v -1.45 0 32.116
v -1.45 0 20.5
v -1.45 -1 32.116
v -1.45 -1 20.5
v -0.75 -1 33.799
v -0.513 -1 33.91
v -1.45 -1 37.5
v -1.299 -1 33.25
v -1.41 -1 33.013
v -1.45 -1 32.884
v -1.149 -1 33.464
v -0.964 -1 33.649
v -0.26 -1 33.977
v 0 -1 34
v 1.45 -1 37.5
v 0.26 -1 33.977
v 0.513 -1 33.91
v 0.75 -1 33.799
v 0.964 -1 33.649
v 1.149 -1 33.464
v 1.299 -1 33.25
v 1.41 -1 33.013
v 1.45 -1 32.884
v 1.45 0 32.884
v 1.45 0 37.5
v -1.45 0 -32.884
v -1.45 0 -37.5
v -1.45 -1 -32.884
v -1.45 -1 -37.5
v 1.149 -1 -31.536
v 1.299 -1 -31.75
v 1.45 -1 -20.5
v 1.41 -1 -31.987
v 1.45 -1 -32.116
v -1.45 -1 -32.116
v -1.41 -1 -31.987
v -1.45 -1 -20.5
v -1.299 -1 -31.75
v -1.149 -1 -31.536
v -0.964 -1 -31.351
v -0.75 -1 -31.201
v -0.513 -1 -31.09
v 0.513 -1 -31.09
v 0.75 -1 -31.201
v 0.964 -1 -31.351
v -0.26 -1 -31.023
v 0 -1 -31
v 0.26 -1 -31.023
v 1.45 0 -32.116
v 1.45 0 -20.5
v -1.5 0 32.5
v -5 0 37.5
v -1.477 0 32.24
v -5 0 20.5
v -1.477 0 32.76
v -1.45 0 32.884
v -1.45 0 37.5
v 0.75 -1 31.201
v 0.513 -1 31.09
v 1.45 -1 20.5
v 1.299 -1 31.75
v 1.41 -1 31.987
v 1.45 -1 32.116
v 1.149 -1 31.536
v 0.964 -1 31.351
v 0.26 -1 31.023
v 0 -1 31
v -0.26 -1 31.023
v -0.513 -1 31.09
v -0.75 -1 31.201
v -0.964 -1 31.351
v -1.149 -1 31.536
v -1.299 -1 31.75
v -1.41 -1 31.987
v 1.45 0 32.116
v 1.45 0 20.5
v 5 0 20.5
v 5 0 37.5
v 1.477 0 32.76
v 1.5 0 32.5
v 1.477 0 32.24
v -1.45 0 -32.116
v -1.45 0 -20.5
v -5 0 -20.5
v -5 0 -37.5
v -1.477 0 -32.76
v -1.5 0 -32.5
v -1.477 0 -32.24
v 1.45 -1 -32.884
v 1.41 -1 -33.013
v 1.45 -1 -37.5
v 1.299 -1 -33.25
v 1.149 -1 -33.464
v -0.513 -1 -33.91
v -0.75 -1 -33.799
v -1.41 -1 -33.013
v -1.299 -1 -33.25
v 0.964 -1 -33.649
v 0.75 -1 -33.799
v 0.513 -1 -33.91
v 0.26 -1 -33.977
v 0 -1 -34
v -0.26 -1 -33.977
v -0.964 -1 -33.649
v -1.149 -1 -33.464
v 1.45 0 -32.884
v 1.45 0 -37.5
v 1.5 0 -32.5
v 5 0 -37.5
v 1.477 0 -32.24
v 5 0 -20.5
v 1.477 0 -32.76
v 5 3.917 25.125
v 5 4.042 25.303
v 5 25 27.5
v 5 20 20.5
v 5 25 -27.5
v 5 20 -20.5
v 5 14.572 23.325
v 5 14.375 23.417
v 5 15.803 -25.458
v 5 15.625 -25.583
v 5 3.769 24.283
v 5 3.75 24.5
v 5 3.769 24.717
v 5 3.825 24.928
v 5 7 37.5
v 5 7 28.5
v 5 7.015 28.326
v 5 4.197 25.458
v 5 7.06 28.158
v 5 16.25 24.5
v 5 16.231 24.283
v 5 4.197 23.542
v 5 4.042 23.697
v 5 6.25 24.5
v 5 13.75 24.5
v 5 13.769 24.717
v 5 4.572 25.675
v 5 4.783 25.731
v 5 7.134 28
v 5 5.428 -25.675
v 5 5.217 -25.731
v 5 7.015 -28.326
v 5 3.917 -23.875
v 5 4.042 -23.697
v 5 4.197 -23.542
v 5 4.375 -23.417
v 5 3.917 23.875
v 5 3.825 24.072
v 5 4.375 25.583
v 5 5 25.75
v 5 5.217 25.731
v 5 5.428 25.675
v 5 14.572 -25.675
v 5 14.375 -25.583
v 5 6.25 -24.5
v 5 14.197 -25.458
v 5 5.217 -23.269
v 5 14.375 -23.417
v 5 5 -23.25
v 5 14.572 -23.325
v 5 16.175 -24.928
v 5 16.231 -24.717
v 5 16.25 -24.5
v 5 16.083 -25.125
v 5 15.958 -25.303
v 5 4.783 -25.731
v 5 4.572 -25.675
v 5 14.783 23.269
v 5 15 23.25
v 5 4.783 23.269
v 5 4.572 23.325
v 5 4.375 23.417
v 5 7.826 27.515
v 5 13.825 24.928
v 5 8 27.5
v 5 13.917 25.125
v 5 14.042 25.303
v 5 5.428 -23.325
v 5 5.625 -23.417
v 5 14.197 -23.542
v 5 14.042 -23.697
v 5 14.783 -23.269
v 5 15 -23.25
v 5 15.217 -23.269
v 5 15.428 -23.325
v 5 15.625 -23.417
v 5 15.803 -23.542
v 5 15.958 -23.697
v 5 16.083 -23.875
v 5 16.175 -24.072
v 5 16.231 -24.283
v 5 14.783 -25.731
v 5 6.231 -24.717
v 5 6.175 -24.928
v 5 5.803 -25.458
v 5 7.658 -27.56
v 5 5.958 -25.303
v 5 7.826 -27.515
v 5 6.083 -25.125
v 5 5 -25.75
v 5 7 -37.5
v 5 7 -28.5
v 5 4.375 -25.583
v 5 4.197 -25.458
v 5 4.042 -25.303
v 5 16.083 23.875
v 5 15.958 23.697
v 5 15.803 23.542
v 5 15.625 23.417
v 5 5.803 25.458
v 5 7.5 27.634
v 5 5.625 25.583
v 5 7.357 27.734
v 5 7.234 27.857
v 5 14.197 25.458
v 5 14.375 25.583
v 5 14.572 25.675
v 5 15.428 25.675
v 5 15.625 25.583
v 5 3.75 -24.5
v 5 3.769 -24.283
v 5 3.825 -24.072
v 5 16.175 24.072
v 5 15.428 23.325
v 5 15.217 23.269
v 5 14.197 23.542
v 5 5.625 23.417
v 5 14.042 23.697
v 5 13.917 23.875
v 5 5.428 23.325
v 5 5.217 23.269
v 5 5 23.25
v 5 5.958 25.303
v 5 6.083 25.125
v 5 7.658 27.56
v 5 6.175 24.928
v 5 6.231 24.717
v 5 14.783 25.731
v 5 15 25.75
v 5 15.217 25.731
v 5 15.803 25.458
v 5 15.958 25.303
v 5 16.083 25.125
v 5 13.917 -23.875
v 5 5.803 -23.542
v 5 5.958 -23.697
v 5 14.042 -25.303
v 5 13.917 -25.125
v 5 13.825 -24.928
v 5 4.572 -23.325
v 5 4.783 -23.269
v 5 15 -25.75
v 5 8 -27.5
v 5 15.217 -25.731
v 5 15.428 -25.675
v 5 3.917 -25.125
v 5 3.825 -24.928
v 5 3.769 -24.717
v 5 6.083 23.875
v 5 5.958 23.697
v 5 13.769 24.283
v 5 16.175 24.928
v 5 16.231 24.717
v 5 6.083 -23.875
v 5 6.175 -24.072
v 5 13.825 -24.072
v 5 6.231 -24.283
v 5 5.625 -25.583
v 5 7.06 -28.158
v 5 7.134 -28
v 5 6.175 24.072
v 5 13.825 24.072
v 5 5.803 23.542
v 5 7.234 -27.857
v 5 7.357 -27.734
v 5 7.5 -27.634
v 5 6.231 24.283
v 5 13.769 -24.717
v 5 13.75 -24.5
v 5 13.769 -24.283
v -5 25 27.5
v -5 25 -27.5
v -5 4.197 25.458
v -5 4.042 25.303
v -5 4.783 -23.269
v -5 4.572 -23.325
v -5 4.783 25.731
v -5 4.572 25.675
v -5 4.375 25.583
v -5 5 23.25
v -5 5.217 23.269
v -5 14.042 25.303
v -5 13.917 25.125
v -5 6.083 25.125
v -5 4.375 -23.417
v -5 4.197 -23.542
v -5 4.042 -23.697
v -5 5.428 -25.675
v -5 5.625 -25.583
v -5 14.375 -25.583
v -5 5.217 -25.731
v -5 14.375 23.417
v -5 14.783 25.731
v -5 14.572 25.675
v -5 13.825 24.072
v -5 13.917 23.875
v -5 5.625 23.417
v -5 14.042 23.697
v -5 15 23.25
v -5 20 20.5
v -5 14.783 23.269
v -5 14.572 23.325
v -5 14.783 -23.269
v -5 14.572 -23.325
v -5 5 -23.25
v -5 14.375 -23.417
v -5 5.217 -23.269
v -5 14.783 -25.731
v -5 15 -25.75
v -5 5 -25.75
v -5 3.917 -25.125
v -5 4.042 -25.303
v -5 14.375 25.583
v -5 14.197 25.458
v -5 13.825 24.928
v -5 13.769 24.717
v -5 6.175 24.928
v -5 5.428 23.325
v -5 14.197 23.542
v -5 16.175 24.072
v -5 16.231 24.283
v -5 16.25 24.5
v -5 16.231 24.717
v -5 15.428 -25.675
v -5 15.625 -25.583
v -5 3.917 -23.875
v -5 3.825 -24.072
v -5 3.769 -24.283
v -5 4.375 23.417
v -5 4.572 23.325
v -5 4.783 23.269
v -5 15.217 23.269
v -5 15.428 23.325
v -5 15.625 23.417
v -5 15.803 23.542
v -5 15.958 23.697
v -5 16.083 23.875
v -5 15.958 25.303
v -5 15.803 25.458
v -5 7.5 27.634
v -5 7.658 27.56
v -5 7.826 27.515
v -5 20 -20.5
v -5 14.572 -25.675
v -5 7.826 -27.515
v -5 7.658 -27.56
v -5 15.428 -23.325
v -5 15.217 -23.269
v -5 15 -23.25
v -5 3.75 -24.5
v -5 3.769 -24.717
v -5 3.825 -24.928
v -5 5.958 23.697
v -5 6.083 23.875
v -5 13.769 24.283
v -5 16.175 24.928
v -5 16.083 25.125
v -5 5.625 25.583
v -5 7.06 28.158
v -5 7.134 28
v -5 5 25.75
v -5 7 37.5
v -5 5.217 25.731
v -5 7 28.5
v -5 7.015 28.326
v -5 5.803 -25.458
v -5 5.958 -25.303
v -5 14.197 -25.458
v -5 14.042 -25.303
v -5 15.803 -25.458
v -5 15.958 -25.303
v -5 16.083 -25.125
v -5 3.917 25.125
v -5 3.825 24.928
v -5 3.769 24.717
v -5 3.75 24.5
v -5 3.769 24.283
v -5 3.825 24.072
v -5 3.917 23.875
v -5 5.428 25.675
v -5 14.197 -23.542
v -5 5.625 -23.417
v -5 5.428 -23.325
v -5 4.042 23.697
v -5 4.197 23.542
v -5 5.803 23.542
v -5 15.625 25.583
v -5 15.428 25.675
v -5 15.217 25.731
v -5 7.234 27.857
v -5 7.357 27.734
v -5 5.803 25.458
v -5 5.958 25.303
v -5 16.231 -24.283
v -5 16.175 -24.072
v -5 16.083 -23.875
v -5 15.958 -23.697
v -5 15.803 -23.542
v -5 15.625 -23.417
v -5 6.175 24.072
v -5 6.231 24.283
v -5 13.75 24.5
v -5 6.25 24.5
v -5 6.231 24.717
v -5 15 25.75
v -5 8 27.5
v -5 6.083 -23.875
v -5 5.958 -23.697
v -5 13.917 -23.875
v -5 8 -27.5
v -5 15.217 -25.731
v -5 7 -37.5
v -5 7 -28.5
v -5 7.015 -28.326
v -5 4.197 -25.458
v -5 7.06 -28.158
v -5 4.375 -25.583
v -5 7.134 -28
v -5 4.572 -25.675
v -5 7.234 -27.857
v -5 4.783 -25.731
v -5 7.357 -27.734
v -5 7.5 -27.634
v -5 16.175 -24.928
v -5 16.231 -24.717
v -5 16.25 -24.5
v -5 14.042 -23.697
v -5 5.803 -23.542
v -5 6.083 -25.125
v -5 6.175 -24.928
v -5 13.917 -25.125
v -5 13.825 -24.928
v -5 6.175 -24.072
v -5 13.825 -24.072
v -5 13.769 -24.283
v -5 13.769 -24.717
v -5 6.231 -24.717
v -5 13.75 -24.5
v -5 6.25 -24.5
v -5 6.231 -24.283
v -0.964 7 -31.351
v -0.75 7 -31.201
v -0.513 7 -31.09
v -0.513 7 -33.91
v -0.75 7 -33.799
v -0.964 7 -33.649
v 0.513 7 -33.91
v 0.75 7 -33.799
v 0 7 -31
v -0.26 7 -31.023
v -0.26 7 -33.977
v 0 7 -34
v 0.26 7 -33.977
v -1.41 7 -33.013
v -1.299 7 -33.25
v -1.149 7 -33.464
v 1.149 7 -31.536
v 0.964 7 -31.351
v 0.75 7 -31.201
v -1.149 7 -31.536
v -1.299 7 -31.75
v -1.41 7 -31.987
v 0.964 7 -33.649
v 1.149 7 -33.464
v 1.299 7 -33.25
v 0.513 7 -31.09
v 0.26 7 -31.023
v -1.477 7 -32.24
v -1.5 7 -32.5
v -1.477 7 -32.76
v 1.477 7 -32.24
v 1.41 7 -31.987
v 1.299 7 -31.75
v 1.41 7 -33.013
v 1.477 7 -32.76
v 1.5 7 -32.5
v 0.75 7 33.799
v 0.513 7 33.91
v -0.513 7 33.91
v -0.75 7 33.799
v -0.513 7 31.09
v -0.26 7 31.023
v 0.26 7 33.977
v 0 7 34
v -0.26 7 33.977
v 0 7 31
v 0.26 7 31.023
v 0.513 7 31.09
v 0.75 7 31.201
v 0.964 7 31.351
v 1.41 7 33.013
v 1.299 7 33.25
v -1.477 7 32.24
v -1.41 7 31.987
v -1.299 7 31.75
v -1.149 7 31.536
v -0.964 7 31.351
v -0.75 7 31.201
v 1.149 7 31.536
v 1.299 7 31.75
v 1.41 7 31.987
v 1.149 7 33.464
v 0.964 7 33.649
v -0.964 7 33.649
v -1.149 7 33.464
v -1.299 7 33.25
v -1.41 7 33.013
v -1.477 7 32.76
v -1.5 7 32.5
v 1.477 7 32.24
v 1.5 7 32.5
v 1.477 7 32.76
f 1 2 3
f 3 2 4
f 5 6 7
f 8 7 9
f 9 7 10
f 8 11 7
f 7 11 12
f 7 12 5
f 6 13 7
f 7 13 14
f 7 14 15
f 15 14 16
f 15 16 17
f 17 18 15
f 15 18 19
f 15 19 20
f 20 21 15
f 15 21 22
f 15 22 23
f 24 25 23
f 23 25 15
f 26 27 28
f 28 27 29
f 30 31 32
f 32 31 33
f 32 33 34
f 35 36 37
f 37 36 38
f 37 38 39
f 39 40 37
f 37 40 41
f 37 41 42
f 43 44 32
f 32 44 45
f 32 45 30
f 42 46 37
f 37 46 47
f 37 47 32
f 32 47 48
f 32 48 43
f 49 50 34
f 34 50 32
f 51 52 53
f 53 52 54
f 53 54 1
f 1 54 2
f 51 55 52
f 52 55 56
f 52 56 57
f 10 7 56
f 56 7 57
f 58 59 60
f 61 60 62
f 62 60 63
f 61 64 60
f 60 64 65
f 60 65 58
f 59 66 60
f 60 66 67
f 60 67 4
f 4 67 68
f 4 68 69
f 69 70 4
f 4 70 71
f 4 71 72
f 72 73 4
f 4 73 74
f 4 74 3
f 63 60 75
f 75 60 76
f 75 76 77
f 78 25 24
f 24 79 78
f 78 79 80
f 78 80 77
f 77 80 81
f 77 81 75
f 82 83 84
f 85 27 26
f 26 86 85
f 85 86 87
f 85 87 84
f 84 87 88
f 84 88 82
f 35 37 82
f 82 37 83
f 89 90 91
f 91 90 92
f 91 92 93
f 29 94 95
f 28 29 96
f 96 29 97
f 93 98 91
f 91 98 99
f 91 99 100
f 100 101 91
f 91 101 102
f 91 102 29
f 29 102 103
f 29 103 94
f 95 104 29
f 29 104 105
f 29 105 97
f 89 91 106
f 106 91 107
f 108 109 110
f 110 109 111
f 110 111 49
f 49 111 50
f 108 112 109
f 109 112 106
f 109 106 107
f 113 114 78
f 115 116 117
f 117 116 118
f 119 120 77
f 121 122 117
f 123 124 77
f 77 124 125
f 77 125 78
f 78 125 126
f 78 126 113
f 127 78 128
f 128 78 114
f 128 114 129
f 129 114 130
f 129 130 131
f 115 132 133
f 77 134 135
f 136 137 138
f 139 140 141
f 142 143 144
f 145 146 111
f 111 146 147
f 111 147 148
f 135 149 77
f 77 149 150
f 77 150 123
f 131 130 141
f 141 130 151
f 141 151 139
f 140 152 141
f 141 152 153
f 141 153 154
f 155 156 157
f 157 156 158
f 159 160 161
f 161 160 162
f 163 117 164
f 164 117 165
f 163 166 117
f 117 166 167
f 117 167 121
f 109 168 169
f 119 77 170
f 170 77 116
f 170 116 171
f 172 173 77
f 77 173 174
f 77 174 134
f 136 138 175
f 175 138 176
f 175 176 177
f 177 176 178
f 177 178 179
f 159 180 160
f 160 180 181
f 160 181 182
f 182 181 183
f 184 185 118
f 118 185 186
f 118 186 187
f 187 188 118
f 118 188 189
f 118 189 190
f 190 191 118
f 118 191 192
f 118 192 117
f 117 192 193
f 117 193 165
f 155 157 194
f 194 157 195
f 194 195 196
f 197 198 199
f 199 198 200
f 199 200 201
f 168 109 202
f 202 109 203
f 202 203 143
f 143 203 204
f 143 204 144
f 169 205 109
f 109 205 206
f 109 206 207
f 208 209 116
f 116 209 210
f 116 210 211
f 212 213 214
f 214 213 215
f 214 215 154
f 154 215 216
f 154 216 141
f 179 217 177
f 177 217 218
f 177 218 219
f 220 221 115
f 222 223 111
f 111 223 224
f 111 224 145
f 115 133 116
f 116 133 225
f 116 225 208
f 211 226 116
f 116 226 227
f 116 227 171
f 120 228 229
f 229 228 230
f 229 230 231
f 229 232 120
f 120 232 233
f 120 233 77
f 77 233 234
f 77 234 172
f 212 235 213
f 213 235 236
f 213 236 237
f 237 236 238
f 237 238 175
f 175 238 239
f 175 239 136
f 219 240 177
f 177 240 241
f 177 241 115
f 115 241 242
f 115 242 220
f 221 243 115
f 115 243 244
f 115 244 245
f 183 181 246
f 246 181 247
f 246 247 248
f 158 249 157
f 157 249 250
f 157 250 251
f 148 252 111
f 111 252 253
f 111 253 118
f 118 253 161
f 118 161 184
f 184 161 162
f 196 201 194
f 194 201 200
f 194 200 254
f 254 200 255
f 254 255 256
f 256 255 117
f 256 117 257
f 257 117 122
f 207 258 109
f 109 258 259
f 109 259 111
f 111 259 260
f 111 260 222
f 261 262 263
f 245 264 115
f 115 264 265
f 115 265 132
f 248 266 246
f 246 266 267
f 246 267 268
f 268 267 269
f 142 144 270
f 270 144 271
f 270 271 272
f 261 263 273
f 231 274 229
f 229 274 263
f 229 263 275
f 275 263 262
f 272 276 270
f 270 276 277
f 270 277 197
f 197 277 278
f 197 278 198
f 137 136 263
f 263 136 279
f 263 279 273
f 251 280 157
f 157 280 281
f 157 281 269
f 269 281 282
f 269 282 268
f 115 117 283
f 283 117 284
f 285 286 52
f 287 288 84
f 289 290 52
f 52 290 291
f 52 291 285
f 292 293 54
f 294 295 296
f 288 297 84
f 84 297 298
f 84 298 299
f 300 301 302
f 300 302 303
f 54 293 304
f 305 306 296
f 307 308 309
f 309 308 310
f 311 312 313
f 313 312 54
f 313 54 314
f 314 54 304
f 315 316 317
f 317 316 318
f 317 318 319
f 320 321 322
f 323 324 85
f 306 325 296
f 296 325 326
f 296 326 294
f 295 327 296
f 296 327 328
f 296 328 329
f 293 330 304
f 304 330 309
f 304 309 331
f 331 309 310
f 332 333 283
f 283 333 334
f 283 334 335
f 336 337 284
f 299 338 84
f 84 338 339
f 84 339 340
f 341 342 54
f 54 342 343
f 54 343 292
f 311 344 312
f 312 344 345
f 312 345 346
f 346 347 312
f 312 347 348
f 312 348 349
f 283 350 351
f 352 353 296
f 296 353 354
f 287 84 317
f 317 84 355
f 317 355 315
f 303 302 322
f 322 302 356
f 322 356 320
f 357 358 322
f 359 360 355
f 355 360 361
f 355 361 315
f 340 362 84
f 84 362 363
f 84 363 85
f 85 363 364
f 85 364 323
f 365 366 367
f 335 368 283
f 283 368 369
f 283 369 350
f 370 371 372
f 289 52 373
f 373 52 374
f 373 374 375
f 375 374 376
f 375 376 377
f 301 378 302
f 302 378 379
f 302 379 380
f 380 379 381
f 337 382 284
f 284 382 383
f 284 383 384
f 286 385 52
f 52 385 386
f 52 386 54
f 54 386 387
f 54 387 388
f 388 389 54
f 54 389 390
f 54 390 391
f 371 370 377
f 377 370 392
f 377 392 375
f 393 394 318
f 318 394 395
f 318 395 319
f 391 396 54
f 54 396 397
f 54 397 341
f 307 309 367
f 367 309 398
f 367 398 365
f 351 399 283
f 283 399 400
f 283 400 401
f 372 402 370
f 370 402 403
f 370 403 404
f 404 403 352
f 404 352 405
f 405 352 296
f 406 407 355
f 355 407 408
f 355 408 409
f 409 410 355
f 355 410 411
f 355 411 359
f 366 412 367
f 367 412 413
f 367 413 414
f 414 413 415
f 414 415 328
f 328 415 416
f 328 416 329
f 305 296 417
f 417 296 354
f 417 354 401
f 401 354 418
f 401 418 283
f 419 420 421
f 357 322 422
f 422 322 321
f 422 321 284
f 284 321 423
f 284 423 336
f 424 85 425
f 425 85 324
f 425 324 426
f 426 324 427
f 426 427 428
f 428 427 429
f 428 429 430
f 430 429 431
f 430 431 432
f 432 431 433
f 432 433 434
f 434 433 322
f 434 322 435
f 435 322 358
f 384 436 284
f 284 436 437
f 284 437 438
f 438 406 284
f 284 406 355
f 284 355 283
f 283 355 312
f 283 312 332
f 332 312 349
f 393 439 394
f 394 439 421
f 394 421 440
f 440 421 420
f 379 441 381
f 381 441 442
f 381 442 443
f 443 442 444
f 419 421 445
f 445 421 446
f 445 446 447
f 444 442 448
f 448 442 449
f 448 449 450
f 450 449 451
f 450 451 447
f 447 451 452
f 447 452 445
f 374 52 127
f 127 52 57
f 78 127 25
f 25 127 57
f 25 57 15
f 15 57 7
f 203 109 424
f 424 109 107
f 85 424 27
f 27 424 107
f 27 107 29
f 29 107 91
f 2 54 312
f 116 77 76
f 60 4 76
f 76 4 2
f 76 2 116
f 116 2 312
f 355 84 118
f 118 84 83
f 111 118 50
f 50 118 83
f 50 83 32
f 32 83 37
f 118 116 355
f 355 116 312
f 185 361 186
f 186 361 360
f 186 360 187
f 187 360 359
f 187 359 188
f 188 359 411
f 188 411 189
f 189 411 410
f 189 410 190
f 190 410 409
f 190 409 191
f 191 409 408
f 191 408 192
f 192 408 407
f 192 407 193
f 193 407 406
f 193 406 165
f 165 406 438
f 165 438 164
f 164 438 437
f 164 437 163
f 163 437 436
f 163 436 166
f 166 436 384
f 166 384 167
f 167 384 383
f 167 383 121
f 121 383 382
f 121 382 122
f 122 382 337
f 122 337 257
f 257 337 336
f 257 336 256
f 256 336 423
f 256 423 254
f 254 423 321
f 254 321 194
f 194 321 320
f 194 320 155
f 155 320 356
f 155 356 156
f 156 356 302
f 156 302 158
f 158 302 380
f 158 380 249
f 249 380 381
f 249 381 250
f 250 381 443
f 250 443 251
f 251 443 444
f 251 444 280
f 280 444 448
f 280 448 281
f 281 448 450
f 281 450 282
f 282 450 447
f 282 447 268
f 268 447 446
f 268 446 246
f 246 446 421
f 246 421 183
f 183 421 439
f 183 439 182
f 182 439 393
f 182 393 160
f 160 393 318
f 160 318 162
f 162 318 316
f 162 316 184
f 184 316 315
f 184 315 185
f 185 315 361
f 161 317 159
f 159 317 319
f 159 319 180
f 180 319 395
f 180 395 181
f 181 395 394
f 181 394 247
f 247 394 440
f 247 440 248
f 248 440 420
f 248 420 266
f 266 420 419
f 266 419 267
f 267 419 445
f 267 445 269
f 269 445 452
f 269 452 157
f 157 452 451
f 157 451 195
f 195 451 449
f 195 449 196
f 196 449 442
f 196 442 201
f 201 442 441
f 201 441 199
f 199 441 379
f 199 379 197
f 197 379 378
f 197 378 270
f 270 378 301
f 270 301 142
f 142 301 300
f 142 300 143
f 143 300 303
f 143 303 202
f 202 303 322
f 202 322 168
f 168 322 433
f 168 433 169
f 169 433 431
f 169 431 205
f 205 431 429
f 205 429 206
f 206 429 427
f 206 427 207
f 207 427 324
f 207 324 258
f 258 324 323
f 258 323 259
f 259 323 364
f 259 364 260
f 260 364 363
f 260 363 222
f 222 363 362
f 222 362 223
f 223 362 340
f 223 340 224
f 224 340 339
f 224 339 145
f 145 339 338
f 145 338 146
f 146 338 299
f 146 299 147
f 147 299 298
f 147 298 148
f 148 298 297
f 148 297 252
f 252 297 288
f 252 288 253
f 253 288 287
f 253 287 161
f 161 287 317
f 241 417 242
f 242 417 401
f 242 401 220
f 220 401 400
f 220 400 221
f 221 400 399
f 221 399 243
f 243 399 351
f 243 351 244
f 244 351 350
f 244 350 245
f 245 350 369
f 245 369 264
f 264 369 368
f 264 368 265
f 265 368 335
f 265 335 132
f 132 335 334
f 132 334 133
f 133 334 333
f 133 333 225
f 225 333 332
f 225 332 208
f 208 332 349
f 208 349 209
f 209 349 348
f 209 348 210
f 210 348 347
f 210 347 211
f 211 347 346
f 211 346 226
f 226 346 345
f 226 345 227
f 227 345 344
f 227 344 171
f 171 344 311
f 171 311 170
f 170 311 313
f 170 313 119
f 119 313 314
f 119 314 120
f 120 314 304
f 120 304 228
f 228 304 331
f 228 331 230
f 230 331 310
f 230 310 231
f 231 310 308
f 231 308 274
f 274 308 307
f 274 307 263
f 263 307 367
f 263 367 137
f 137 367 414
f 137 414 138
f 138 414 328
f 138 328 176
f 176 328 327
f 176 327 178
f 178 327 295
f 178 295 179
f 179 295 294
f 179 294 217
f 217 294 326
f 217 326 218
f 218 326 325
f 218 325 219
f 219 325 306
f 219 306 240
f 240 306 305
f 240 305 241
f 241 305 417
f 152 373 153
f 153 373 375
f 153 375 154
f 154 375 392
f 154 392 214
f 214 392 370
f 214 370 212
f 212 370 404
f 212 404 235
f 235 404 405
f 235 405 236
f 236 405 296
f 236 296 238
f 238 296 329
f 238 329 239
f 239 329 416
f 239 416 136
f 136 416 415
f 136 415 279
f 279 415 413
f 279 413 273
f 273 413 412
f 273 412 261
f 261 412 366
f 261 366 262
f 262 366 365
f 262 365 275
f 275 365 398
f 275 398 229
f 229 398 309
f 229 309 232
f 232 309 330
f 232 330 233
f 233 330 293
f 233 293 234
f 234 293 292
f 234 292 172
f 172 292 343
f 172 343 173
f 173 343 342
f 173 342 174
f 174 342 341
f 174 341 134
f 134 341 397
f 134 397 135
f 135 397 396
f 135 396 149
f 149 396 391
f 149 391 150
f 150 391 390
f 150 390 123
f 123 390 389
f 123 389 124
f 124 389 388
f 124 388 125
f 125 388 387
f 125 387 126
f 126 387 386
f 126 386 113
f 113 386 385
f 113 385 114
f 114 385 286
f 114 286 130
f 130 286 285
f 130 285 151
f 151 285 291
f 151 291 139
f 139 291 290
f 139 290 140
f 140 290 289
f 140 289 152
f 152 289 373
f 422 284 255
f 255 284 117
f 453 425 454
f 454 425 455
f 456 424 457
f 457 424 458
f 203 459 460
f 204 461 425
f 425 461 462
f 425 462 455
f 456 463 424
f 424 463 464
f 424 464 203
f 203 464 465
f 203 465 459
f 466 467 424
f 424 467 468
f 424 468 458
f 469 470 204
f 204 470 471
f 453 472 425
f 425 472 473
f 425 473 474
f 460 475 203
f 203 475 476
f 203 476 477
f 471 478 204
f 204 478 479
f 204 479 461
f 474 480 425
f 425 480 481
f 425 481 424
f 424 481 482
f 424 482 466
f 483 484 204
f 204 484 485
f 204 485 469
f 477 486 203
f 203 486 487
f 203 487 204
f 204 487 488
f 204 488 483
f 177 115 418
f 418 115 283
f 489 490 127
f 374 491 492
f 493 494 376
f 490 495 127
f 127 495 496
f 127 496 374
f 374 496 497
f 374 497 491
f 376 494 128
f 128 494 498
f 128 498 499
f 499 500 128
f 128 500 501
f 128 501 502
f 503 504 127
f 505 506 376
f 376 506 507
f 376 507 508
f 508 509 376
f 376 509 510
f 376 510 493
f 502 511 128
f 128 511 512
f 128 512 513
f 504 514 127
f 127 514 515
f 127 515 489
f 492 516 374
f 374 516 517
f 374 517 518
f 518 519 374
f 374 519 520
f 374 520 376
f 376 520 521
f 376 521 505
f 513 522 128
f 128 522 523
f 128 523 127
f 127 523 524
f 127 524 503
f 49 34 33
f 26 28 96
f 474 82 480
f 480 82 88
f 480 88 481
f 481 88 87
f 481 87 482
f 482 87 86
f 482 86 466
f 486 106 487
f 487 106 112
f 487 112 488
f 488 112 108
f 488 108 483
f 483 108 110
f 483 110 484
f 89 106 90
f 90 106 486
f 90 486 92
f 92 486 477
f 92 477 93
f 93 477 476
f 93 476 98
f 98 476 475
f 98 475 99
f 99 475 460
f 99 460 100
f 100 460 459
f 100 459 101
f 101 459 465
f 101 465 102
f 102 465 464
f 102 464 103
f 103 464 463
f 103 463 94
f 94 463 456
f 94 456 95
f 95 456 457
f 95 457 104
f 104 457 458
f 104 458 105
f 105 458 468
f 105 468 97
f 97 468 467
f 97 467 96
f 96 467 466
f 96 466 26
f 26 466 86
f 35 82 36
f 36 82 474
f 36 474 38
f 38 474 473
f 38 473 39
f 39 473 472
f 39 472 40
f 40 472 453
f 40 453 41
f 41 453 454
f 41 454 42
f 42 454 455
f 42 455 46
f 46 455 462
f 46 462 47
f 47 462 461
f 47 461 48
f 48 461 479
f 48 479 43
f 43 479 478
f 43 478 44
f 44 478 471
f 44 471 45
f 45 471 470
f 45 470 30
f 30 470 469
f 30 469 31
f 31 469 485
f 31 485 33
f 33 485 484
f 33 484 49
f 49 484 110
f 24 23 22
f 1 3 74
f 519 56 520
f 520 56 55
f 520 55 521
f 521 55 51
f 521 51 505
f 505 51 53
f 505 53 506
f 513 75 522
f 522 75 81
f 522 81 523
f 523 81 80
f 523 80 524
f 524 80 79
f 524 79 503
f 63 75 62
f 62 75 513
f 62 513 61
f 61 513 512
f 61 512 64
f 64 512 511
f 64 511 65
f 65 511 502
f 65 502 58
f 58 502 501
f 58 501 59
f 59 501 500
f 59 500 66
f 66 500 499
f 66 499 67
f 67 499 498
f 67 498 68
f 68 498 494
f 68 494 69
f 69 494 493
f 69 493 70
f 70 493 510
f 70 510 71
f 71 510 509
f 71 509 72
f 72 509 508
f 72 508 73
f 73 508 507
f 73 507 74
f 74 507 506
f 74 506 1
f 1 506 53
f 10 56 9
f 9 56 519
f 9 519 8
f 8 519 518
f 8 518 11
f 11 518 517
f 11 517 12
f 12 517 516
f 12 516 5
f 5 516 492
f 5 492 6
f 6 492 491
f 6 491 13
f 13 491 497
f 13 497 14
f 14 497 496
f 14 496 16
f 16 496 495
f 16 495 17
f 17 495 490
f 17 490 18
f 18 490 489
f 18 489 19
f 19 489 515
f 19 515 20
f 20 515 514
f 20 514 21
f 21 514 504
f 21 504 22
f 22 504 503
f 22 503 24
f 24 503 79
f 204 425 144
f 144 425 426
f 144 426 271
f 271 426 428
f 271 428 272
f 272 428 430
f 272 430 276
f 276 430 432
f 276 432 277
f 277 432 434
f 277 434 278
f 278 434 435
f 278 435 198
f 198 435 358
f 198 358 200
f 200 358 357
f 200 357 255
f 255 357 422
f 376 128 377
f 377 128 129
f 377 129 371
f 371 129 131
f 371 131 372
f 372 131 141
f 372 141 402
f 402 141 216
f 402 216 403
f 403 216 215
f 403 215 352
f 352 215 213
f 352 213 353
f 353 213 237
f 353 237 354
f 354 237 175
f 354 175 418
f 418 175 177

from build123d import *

# Parameters (mm, degrees)
MAIN_DEPTH                   = 37.5
SKETCH2_W                    = 41
SKETCH2_H                    = 21
SERVOPLACE_DEPTH             = 11
SKETCH3_R                    = 1.25
SERVOFIXHOLE_DEPTH           = 11
SKETCH4_W                    = 10
SKETCH4_H                    = 10
CUTFORFIXMAKERBEAMHOLE_DEPTH = 18
SKETCH5_R                    = 1.5
FIXHOLEMAKERBEAM_DEPTH       = 9
FILLET1_R                    = 1


with BuildPart() as part:
    # Sketch1 → Main (new body, symmetric)
    with BuildSketch(Plane.XY):
        Polygon((-5, 0), (-5, 25), (5, 25), (5, 0), (1.45, 0), (1.45, -1), (-1.45, -1), (-1.45, 0), align=None)
    extrude(amount=MAIN_DEPTH, both=True)

    # Sketch2 → ServoPlace (cut, through all)
    with BuildSketch(Plane.ZY.offset(5)):
        with Locations((0, 9.5)):
            Rectangle(SKETCH2_W, SKETCH2_H)
    extrude(amount=-SERVOPLACE_DEPTH, mode=Mode.SUBTRACT)

    # Sketch3 → ServoFixHole (cut, through all)
    with BuildSketch(Plane.ZY.offset(5)):
        with Locations((-24.5, 15)):
            Circle(SKETCH3_R)
        with Locations((-24.5, 5)):
            Circle(SKETCH3_R)
    servofixhole = extrude(amount=-SERVOFIXHOLE_DEPTH, mode=Mode.SUBTRACT)

    # ServoFixHoleMirror: ServoFixHole across plane
    add(servofixhole.mirror(Plane.XY), mode=Mode.SUBTRACT)

    # Sketch4 → CutForFixMakerBeamHole (cut)
    with BuildSketch(Plane(origin=(0, 25, 0), x_dir=(1, 0, 0), z_dir=(0, 1, 0))):
        with Locations((0, 32.5)):
            Rectangle(SKETCH4_W, SKETCH4_H)
        with Locations((0, -32.5)):
            Rectangle(SKETCH4_W, SKETCH4_H)
    extrude(amount=-CUTFORFIXMAKERBEAMHOLE_DEPTH, mode=Mode.SUBTRACT)

    # Sketch5 → FixHoleMakerBeam (cut, through all)
    with BuildSketch(Plane(origin=(0, 7, 0), x_dir=(1, 0, 0), z_dir=(0, 1, 0))):
        with Locations((0, 32.5)):
            Circle(SKETCH5_R)
        with Locations((0, -32.5)):
            Circle(SKETCH5_R)
    extrude(amount=-FIXHOLEMAKERBEAM_DEPTH, mode=Mode.SUBTRACT)

    # Fillet1
    fillet1_edges = [part.edges().sort_by_distance(p)[0] for p in [
        (0, 7, -27.5),
        (0, 7, 27.5),
    ]]
    fillet(fillet1_edges, radius=FILLET1_R)


solid = part.part
